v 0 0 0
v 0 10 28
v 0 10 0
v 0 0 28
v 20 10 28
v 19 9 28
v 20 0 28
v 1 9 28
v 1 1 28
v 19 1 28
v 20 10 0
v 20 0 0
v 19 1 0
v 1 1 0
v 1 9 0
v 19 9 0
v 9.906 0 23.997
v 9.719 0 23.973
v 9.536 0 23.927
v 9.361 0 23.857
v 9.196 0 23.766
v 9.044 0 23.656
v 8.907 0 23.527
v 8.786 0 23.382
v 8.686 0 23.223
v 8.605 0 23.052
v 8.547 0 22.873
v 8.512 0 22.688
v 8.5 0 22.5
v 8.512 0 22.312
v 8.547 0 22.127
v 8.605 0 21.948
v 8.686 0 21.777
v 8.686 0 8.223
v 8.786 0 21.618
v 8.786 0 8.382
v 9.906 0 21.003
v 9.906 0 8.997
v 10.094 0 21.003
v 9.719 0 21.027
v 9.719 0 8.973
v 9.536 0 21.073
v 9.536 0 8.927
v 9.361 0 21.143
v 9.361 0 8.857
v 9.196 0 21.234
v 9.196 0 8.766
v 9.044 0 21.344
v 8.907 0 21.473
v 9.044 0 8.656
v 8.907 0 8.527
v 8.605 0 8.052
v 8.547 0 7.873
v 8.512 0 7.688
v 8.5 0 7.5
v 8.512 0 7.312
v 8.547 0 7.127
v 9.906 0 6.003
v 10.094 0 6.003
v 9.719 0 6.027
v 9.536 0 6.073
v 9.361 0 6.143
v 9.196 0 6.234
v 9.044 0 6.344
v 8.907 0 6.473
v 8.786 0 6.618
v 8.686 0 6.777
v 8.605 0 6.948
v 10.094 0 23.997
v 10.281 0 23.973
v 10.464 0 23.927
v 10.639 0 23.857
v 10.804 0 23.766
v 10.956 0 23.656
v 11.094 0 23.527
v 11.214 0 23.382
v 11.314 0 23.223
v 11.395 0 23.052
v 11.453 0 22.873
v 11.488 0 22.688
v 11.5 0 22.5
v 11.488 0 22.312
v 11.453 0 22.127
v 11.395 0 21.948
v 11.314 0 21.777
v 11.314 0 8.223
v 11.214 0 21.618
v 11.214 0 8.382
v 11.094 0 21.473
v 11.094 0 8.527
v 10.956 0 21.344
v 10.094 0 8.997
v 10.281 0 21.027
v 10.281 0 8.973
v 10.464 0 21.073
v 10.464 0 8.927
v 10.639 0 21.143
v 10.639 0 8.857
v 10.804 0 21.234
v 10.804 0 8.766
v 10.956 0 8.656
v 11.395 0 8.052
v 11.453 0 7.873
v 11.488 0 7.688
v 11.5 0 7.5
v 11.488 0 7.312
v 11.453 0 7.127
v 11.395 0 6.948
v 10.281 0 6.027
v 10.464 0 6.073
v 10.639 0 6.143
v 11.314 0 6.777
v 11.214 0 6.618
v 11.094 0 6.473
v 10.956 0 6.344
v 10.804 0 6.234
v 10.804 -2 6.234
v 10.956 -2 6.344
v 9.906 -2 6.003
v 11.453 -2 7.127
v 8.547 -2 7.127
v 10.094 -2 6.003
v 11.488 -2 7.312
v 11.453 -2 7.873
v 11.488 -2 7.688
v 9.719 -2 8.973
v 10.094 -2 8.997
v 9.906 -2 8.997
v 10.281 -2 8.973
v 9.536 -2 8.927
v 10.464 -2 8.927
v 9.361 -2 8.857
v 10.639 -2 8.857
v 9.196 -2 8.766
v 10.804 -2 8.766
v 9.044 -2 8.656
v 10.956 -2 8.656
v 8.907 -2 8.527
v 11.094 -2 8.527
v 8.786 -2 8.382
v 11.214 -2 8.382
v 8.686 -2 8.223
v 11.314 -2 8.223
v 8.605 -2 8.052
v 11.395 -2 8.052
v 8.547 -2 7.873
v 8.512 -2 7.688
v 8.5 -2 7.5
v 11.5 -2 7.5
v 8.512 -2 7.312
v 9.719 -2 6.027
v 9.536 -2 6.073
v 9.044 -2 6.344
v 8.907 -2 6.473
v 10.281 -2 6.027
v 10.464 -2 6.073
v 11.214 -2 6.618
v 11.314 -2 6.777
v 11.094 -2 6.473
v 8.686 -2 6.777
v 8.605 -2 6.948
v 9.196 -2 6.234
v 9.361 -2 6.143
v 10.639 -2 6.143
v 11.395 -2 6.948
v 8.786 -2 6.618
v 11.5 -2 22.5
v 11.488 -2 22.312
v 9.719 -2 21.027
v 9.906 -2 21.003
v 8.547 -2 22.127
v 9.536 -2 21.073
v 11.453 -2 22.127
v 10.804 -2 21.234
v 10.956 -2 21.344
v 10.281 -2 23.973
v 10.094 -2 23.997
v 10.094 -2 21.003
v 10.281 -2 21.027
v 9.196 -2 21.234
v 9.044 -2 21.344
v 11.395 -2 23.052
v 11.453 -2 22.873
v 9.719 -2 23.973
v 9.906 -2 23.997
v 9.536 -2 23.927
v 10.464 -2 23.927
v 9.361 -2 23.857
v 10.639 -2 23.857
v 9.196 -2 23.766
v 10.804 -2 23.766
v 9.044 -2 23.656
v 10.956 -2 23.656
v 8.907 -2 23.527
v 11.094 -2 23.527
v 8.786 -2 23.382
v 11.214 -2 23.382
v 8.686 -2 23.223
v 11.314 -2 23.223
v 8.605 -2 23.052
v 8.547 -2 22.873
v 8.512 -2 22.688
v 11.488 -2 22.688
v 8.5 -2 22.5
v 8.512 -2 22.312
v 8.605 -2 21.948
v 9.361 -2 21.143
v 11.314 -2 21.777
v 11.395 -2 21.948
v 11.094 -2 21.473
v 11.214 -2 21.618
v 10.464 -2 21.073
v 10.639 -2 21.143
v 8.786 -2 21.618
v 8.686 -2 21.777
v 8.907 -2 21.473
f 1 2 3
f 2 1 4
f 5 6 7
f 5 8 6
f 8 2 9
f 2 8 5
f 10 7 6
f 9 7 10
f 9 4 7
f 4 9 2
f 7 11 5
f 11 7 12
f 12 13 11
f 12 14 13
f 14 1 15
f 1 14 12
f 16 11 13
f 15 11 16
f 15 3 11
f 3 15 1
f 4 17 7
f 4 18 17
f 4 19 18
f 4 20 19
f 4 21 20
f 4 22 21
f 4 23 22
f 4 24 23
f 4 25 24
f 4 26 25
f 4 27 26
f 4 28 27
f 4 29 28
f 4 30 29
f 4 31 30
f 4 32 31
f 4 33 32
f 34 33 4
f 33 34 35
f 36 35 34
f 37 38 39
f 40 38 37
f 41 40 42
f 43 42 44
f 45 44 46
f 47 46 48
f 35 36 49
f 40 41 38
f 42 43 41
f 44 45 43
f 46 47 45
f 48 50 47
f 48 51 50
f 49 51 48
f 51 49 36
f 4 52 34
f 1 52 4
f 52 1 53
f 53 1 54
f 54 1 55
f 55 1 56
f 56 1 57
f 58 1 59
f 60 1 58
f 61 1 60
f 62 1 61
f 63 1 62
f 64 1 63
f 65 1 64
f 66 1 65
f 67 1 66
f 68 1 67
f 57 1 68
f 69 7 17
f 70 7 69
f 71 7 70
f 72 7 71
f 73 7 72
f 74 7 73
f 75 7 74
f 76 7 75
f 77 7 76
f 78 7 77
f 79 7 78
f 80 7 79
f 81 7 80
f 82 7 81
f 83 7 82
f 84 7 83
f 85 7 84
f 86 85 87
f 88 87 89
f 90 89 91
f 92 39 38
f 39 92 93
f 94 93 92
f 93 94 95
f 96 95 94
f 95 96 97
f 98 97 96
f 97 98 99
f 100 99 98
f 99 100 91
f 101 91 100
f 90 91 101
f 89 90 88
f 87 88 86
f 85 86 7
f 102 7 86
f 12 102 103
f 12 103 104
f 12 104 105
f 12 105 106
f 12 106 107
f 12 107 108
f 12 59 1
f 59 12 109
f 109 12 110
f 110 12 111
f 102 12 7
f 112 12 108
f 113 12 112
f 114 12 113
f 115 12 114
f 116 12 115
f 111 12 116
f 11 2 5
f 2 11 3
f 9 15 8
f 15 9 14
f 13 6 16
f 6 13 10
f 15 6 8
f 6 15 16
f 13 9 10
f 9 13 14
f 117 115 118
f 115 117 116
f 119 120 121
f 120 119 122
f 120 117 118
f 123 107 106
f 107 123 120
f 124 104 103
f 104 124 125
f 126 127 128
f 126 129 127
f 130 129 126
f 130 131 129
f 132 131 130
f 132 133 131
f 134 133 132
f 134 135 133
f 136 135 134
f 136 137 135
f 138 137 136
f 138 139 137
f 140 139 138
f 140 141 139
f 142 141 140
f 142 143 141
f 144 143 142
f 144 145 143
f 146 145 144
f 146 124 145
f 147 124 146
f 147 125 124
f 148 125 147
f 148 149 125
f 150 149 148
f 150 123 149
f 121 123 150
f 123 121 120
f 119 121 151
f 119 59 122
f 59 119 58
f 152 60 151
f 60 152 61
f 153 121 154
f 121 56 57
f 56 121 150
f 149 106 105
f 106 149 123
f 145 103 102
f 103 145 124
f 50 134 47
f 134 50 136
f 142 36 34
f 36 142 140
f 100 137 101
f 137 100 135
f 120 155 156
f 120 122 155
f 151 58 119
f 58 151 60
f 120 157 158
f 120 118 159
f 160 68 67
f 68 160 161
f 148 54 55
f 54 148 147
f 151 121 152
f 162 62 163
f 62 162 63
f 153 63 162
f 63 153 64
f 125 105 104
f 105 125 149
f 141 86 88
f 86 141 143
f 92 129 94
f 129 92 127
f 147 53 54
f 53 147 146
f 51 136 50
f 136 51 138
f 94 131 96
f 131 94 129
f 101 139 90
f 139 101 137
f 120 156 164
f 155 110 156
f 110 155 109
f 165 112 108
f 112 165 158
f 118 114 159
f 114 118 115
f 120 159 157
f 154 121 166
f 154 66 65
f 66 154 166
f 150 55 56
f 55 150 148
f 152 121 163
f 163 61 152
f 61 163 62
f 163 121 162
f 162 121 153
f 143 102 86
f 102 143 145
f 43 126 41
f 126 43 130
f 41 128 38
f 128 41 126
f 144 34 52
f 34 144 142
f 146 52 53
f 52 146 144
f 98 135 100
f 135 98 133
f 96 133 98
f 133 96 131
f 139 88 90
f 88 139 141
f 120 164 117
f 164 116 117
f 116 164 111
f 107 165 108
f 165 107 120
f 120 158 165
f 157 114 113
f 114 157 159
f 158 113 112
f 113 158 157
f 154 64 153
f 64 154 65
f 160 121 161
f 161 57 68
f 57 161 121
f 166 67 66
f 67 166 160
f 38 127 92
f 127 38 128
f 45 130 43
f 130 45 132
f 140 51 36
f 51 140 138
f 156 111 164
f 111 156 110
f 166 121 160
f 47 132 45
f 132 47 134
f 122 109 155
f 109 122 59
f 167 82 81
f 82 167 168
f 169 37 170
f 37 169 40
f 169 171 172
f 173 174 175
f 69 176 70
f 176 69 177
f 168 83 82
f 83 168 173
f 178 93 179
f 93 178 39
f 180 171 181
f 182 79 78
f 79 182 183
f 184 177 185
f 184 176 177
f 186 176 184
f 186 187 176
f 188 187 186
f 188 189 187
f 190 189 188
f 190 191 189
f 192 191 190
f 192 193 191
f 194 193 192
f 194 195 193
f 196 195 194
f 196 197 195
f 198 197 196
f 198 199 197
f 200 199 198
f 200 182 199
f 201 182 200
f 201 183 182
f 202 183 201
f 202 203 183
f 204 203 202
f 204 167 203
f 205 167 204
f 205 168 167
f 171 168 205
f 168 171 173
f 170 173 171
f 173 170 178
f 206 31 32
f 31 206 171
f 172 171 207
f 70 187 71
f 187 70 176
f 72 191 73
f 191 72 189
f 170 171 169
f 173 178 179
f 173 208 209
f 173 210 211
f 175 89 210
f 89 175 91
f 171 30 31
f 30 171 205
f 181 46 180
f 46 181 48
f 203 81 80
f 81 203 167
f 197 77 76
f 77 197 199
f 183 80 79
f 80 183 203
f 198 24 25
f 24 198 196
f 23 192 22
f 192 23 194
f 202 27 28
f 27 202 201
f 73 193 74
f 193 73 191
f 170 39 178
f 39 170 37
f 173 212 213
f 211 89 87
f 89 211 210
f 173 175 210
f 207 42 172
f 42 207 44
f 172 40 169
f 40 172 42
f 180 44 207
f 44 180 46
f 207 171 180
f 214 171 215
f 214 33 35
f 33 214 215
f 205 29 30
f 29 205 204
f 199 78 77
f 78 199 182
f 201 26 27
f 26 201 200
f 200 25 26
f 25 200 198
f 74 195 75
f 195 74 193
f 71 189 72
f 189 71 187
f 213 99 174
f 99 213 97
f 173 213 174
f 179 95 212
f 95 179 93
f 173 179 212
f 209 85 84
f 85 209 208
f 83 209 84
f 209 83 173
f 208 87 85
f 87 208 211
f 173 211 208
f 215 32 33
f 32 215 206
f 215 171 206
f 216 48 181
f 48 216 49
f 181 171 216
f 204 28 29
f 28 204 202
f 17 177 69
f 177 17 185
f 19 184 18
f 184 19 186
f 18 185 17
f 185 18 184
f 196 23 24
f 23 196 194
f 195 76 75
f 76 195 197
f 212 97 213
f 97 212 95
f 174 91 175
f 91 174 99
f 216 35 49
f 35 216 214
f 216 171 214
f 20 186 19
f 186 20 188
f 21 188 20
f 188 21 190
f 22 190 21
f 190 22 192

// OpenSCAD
// battery box for hovercraft, with screw holes
$fn=50;
yy=8;
xx=18;
zz=28;
t=2;


module p1() {
difference() {
    cube([xx+t,yy+t,zz]);
    translate([t/2,t/2,0]) cube([xx,yy,zz]);
    if (0) {
        translate([(xx+t)/2,0,(zz+t)/2]) rotate([-90,0,0]) cylinder(d=3,yy+2*t);
        translate([(xx+t)/2,0,(zz+t)/2]) rotate([-90,0,0]) cylinder(d=6,t);
    }
    else {
        translate([(xx+t)/2,0,(zz+t)/4]) rotate([-90,0,0]) cylinder(d=3,yy+2*t);
        translate([(xx+t)/2,0,(zz+t)/4]) rotate([-90,0,0]) cylinder(d=6,t);
        translate([(xx+t)/2,0,3*(zz+t)/4]) rotate([-90,0,0]) cylinder(d=3,yy+2*t);
        translate([(xx+t)/2,0,3*(zz+t)/4]) rotate([-90,0,0]) cylinder(d=6,t);
    }

}
}

module p2() {
difference() {
    cube([xx+t,yy+t,zz]);
    translate([t/2,t/2,0]) cube([xx,yy,zz]);

}
    if (0) {
        #translate([(xx+t)/2,-t,(zz+t)/2]) rotate([-90,0,0]) cylinder(d=3,t);
    }
    else {
        #translate([(xx+t)/2,-t,(zz+t)/4]) rotate([-90,0,0]) cylinder(d=3,t);
        #translate([(xx+t)/2,-t,3*(zz+t)/4]) rotate([-90,0,0]) cylinder(d=3,t);
    }
}

p2();
